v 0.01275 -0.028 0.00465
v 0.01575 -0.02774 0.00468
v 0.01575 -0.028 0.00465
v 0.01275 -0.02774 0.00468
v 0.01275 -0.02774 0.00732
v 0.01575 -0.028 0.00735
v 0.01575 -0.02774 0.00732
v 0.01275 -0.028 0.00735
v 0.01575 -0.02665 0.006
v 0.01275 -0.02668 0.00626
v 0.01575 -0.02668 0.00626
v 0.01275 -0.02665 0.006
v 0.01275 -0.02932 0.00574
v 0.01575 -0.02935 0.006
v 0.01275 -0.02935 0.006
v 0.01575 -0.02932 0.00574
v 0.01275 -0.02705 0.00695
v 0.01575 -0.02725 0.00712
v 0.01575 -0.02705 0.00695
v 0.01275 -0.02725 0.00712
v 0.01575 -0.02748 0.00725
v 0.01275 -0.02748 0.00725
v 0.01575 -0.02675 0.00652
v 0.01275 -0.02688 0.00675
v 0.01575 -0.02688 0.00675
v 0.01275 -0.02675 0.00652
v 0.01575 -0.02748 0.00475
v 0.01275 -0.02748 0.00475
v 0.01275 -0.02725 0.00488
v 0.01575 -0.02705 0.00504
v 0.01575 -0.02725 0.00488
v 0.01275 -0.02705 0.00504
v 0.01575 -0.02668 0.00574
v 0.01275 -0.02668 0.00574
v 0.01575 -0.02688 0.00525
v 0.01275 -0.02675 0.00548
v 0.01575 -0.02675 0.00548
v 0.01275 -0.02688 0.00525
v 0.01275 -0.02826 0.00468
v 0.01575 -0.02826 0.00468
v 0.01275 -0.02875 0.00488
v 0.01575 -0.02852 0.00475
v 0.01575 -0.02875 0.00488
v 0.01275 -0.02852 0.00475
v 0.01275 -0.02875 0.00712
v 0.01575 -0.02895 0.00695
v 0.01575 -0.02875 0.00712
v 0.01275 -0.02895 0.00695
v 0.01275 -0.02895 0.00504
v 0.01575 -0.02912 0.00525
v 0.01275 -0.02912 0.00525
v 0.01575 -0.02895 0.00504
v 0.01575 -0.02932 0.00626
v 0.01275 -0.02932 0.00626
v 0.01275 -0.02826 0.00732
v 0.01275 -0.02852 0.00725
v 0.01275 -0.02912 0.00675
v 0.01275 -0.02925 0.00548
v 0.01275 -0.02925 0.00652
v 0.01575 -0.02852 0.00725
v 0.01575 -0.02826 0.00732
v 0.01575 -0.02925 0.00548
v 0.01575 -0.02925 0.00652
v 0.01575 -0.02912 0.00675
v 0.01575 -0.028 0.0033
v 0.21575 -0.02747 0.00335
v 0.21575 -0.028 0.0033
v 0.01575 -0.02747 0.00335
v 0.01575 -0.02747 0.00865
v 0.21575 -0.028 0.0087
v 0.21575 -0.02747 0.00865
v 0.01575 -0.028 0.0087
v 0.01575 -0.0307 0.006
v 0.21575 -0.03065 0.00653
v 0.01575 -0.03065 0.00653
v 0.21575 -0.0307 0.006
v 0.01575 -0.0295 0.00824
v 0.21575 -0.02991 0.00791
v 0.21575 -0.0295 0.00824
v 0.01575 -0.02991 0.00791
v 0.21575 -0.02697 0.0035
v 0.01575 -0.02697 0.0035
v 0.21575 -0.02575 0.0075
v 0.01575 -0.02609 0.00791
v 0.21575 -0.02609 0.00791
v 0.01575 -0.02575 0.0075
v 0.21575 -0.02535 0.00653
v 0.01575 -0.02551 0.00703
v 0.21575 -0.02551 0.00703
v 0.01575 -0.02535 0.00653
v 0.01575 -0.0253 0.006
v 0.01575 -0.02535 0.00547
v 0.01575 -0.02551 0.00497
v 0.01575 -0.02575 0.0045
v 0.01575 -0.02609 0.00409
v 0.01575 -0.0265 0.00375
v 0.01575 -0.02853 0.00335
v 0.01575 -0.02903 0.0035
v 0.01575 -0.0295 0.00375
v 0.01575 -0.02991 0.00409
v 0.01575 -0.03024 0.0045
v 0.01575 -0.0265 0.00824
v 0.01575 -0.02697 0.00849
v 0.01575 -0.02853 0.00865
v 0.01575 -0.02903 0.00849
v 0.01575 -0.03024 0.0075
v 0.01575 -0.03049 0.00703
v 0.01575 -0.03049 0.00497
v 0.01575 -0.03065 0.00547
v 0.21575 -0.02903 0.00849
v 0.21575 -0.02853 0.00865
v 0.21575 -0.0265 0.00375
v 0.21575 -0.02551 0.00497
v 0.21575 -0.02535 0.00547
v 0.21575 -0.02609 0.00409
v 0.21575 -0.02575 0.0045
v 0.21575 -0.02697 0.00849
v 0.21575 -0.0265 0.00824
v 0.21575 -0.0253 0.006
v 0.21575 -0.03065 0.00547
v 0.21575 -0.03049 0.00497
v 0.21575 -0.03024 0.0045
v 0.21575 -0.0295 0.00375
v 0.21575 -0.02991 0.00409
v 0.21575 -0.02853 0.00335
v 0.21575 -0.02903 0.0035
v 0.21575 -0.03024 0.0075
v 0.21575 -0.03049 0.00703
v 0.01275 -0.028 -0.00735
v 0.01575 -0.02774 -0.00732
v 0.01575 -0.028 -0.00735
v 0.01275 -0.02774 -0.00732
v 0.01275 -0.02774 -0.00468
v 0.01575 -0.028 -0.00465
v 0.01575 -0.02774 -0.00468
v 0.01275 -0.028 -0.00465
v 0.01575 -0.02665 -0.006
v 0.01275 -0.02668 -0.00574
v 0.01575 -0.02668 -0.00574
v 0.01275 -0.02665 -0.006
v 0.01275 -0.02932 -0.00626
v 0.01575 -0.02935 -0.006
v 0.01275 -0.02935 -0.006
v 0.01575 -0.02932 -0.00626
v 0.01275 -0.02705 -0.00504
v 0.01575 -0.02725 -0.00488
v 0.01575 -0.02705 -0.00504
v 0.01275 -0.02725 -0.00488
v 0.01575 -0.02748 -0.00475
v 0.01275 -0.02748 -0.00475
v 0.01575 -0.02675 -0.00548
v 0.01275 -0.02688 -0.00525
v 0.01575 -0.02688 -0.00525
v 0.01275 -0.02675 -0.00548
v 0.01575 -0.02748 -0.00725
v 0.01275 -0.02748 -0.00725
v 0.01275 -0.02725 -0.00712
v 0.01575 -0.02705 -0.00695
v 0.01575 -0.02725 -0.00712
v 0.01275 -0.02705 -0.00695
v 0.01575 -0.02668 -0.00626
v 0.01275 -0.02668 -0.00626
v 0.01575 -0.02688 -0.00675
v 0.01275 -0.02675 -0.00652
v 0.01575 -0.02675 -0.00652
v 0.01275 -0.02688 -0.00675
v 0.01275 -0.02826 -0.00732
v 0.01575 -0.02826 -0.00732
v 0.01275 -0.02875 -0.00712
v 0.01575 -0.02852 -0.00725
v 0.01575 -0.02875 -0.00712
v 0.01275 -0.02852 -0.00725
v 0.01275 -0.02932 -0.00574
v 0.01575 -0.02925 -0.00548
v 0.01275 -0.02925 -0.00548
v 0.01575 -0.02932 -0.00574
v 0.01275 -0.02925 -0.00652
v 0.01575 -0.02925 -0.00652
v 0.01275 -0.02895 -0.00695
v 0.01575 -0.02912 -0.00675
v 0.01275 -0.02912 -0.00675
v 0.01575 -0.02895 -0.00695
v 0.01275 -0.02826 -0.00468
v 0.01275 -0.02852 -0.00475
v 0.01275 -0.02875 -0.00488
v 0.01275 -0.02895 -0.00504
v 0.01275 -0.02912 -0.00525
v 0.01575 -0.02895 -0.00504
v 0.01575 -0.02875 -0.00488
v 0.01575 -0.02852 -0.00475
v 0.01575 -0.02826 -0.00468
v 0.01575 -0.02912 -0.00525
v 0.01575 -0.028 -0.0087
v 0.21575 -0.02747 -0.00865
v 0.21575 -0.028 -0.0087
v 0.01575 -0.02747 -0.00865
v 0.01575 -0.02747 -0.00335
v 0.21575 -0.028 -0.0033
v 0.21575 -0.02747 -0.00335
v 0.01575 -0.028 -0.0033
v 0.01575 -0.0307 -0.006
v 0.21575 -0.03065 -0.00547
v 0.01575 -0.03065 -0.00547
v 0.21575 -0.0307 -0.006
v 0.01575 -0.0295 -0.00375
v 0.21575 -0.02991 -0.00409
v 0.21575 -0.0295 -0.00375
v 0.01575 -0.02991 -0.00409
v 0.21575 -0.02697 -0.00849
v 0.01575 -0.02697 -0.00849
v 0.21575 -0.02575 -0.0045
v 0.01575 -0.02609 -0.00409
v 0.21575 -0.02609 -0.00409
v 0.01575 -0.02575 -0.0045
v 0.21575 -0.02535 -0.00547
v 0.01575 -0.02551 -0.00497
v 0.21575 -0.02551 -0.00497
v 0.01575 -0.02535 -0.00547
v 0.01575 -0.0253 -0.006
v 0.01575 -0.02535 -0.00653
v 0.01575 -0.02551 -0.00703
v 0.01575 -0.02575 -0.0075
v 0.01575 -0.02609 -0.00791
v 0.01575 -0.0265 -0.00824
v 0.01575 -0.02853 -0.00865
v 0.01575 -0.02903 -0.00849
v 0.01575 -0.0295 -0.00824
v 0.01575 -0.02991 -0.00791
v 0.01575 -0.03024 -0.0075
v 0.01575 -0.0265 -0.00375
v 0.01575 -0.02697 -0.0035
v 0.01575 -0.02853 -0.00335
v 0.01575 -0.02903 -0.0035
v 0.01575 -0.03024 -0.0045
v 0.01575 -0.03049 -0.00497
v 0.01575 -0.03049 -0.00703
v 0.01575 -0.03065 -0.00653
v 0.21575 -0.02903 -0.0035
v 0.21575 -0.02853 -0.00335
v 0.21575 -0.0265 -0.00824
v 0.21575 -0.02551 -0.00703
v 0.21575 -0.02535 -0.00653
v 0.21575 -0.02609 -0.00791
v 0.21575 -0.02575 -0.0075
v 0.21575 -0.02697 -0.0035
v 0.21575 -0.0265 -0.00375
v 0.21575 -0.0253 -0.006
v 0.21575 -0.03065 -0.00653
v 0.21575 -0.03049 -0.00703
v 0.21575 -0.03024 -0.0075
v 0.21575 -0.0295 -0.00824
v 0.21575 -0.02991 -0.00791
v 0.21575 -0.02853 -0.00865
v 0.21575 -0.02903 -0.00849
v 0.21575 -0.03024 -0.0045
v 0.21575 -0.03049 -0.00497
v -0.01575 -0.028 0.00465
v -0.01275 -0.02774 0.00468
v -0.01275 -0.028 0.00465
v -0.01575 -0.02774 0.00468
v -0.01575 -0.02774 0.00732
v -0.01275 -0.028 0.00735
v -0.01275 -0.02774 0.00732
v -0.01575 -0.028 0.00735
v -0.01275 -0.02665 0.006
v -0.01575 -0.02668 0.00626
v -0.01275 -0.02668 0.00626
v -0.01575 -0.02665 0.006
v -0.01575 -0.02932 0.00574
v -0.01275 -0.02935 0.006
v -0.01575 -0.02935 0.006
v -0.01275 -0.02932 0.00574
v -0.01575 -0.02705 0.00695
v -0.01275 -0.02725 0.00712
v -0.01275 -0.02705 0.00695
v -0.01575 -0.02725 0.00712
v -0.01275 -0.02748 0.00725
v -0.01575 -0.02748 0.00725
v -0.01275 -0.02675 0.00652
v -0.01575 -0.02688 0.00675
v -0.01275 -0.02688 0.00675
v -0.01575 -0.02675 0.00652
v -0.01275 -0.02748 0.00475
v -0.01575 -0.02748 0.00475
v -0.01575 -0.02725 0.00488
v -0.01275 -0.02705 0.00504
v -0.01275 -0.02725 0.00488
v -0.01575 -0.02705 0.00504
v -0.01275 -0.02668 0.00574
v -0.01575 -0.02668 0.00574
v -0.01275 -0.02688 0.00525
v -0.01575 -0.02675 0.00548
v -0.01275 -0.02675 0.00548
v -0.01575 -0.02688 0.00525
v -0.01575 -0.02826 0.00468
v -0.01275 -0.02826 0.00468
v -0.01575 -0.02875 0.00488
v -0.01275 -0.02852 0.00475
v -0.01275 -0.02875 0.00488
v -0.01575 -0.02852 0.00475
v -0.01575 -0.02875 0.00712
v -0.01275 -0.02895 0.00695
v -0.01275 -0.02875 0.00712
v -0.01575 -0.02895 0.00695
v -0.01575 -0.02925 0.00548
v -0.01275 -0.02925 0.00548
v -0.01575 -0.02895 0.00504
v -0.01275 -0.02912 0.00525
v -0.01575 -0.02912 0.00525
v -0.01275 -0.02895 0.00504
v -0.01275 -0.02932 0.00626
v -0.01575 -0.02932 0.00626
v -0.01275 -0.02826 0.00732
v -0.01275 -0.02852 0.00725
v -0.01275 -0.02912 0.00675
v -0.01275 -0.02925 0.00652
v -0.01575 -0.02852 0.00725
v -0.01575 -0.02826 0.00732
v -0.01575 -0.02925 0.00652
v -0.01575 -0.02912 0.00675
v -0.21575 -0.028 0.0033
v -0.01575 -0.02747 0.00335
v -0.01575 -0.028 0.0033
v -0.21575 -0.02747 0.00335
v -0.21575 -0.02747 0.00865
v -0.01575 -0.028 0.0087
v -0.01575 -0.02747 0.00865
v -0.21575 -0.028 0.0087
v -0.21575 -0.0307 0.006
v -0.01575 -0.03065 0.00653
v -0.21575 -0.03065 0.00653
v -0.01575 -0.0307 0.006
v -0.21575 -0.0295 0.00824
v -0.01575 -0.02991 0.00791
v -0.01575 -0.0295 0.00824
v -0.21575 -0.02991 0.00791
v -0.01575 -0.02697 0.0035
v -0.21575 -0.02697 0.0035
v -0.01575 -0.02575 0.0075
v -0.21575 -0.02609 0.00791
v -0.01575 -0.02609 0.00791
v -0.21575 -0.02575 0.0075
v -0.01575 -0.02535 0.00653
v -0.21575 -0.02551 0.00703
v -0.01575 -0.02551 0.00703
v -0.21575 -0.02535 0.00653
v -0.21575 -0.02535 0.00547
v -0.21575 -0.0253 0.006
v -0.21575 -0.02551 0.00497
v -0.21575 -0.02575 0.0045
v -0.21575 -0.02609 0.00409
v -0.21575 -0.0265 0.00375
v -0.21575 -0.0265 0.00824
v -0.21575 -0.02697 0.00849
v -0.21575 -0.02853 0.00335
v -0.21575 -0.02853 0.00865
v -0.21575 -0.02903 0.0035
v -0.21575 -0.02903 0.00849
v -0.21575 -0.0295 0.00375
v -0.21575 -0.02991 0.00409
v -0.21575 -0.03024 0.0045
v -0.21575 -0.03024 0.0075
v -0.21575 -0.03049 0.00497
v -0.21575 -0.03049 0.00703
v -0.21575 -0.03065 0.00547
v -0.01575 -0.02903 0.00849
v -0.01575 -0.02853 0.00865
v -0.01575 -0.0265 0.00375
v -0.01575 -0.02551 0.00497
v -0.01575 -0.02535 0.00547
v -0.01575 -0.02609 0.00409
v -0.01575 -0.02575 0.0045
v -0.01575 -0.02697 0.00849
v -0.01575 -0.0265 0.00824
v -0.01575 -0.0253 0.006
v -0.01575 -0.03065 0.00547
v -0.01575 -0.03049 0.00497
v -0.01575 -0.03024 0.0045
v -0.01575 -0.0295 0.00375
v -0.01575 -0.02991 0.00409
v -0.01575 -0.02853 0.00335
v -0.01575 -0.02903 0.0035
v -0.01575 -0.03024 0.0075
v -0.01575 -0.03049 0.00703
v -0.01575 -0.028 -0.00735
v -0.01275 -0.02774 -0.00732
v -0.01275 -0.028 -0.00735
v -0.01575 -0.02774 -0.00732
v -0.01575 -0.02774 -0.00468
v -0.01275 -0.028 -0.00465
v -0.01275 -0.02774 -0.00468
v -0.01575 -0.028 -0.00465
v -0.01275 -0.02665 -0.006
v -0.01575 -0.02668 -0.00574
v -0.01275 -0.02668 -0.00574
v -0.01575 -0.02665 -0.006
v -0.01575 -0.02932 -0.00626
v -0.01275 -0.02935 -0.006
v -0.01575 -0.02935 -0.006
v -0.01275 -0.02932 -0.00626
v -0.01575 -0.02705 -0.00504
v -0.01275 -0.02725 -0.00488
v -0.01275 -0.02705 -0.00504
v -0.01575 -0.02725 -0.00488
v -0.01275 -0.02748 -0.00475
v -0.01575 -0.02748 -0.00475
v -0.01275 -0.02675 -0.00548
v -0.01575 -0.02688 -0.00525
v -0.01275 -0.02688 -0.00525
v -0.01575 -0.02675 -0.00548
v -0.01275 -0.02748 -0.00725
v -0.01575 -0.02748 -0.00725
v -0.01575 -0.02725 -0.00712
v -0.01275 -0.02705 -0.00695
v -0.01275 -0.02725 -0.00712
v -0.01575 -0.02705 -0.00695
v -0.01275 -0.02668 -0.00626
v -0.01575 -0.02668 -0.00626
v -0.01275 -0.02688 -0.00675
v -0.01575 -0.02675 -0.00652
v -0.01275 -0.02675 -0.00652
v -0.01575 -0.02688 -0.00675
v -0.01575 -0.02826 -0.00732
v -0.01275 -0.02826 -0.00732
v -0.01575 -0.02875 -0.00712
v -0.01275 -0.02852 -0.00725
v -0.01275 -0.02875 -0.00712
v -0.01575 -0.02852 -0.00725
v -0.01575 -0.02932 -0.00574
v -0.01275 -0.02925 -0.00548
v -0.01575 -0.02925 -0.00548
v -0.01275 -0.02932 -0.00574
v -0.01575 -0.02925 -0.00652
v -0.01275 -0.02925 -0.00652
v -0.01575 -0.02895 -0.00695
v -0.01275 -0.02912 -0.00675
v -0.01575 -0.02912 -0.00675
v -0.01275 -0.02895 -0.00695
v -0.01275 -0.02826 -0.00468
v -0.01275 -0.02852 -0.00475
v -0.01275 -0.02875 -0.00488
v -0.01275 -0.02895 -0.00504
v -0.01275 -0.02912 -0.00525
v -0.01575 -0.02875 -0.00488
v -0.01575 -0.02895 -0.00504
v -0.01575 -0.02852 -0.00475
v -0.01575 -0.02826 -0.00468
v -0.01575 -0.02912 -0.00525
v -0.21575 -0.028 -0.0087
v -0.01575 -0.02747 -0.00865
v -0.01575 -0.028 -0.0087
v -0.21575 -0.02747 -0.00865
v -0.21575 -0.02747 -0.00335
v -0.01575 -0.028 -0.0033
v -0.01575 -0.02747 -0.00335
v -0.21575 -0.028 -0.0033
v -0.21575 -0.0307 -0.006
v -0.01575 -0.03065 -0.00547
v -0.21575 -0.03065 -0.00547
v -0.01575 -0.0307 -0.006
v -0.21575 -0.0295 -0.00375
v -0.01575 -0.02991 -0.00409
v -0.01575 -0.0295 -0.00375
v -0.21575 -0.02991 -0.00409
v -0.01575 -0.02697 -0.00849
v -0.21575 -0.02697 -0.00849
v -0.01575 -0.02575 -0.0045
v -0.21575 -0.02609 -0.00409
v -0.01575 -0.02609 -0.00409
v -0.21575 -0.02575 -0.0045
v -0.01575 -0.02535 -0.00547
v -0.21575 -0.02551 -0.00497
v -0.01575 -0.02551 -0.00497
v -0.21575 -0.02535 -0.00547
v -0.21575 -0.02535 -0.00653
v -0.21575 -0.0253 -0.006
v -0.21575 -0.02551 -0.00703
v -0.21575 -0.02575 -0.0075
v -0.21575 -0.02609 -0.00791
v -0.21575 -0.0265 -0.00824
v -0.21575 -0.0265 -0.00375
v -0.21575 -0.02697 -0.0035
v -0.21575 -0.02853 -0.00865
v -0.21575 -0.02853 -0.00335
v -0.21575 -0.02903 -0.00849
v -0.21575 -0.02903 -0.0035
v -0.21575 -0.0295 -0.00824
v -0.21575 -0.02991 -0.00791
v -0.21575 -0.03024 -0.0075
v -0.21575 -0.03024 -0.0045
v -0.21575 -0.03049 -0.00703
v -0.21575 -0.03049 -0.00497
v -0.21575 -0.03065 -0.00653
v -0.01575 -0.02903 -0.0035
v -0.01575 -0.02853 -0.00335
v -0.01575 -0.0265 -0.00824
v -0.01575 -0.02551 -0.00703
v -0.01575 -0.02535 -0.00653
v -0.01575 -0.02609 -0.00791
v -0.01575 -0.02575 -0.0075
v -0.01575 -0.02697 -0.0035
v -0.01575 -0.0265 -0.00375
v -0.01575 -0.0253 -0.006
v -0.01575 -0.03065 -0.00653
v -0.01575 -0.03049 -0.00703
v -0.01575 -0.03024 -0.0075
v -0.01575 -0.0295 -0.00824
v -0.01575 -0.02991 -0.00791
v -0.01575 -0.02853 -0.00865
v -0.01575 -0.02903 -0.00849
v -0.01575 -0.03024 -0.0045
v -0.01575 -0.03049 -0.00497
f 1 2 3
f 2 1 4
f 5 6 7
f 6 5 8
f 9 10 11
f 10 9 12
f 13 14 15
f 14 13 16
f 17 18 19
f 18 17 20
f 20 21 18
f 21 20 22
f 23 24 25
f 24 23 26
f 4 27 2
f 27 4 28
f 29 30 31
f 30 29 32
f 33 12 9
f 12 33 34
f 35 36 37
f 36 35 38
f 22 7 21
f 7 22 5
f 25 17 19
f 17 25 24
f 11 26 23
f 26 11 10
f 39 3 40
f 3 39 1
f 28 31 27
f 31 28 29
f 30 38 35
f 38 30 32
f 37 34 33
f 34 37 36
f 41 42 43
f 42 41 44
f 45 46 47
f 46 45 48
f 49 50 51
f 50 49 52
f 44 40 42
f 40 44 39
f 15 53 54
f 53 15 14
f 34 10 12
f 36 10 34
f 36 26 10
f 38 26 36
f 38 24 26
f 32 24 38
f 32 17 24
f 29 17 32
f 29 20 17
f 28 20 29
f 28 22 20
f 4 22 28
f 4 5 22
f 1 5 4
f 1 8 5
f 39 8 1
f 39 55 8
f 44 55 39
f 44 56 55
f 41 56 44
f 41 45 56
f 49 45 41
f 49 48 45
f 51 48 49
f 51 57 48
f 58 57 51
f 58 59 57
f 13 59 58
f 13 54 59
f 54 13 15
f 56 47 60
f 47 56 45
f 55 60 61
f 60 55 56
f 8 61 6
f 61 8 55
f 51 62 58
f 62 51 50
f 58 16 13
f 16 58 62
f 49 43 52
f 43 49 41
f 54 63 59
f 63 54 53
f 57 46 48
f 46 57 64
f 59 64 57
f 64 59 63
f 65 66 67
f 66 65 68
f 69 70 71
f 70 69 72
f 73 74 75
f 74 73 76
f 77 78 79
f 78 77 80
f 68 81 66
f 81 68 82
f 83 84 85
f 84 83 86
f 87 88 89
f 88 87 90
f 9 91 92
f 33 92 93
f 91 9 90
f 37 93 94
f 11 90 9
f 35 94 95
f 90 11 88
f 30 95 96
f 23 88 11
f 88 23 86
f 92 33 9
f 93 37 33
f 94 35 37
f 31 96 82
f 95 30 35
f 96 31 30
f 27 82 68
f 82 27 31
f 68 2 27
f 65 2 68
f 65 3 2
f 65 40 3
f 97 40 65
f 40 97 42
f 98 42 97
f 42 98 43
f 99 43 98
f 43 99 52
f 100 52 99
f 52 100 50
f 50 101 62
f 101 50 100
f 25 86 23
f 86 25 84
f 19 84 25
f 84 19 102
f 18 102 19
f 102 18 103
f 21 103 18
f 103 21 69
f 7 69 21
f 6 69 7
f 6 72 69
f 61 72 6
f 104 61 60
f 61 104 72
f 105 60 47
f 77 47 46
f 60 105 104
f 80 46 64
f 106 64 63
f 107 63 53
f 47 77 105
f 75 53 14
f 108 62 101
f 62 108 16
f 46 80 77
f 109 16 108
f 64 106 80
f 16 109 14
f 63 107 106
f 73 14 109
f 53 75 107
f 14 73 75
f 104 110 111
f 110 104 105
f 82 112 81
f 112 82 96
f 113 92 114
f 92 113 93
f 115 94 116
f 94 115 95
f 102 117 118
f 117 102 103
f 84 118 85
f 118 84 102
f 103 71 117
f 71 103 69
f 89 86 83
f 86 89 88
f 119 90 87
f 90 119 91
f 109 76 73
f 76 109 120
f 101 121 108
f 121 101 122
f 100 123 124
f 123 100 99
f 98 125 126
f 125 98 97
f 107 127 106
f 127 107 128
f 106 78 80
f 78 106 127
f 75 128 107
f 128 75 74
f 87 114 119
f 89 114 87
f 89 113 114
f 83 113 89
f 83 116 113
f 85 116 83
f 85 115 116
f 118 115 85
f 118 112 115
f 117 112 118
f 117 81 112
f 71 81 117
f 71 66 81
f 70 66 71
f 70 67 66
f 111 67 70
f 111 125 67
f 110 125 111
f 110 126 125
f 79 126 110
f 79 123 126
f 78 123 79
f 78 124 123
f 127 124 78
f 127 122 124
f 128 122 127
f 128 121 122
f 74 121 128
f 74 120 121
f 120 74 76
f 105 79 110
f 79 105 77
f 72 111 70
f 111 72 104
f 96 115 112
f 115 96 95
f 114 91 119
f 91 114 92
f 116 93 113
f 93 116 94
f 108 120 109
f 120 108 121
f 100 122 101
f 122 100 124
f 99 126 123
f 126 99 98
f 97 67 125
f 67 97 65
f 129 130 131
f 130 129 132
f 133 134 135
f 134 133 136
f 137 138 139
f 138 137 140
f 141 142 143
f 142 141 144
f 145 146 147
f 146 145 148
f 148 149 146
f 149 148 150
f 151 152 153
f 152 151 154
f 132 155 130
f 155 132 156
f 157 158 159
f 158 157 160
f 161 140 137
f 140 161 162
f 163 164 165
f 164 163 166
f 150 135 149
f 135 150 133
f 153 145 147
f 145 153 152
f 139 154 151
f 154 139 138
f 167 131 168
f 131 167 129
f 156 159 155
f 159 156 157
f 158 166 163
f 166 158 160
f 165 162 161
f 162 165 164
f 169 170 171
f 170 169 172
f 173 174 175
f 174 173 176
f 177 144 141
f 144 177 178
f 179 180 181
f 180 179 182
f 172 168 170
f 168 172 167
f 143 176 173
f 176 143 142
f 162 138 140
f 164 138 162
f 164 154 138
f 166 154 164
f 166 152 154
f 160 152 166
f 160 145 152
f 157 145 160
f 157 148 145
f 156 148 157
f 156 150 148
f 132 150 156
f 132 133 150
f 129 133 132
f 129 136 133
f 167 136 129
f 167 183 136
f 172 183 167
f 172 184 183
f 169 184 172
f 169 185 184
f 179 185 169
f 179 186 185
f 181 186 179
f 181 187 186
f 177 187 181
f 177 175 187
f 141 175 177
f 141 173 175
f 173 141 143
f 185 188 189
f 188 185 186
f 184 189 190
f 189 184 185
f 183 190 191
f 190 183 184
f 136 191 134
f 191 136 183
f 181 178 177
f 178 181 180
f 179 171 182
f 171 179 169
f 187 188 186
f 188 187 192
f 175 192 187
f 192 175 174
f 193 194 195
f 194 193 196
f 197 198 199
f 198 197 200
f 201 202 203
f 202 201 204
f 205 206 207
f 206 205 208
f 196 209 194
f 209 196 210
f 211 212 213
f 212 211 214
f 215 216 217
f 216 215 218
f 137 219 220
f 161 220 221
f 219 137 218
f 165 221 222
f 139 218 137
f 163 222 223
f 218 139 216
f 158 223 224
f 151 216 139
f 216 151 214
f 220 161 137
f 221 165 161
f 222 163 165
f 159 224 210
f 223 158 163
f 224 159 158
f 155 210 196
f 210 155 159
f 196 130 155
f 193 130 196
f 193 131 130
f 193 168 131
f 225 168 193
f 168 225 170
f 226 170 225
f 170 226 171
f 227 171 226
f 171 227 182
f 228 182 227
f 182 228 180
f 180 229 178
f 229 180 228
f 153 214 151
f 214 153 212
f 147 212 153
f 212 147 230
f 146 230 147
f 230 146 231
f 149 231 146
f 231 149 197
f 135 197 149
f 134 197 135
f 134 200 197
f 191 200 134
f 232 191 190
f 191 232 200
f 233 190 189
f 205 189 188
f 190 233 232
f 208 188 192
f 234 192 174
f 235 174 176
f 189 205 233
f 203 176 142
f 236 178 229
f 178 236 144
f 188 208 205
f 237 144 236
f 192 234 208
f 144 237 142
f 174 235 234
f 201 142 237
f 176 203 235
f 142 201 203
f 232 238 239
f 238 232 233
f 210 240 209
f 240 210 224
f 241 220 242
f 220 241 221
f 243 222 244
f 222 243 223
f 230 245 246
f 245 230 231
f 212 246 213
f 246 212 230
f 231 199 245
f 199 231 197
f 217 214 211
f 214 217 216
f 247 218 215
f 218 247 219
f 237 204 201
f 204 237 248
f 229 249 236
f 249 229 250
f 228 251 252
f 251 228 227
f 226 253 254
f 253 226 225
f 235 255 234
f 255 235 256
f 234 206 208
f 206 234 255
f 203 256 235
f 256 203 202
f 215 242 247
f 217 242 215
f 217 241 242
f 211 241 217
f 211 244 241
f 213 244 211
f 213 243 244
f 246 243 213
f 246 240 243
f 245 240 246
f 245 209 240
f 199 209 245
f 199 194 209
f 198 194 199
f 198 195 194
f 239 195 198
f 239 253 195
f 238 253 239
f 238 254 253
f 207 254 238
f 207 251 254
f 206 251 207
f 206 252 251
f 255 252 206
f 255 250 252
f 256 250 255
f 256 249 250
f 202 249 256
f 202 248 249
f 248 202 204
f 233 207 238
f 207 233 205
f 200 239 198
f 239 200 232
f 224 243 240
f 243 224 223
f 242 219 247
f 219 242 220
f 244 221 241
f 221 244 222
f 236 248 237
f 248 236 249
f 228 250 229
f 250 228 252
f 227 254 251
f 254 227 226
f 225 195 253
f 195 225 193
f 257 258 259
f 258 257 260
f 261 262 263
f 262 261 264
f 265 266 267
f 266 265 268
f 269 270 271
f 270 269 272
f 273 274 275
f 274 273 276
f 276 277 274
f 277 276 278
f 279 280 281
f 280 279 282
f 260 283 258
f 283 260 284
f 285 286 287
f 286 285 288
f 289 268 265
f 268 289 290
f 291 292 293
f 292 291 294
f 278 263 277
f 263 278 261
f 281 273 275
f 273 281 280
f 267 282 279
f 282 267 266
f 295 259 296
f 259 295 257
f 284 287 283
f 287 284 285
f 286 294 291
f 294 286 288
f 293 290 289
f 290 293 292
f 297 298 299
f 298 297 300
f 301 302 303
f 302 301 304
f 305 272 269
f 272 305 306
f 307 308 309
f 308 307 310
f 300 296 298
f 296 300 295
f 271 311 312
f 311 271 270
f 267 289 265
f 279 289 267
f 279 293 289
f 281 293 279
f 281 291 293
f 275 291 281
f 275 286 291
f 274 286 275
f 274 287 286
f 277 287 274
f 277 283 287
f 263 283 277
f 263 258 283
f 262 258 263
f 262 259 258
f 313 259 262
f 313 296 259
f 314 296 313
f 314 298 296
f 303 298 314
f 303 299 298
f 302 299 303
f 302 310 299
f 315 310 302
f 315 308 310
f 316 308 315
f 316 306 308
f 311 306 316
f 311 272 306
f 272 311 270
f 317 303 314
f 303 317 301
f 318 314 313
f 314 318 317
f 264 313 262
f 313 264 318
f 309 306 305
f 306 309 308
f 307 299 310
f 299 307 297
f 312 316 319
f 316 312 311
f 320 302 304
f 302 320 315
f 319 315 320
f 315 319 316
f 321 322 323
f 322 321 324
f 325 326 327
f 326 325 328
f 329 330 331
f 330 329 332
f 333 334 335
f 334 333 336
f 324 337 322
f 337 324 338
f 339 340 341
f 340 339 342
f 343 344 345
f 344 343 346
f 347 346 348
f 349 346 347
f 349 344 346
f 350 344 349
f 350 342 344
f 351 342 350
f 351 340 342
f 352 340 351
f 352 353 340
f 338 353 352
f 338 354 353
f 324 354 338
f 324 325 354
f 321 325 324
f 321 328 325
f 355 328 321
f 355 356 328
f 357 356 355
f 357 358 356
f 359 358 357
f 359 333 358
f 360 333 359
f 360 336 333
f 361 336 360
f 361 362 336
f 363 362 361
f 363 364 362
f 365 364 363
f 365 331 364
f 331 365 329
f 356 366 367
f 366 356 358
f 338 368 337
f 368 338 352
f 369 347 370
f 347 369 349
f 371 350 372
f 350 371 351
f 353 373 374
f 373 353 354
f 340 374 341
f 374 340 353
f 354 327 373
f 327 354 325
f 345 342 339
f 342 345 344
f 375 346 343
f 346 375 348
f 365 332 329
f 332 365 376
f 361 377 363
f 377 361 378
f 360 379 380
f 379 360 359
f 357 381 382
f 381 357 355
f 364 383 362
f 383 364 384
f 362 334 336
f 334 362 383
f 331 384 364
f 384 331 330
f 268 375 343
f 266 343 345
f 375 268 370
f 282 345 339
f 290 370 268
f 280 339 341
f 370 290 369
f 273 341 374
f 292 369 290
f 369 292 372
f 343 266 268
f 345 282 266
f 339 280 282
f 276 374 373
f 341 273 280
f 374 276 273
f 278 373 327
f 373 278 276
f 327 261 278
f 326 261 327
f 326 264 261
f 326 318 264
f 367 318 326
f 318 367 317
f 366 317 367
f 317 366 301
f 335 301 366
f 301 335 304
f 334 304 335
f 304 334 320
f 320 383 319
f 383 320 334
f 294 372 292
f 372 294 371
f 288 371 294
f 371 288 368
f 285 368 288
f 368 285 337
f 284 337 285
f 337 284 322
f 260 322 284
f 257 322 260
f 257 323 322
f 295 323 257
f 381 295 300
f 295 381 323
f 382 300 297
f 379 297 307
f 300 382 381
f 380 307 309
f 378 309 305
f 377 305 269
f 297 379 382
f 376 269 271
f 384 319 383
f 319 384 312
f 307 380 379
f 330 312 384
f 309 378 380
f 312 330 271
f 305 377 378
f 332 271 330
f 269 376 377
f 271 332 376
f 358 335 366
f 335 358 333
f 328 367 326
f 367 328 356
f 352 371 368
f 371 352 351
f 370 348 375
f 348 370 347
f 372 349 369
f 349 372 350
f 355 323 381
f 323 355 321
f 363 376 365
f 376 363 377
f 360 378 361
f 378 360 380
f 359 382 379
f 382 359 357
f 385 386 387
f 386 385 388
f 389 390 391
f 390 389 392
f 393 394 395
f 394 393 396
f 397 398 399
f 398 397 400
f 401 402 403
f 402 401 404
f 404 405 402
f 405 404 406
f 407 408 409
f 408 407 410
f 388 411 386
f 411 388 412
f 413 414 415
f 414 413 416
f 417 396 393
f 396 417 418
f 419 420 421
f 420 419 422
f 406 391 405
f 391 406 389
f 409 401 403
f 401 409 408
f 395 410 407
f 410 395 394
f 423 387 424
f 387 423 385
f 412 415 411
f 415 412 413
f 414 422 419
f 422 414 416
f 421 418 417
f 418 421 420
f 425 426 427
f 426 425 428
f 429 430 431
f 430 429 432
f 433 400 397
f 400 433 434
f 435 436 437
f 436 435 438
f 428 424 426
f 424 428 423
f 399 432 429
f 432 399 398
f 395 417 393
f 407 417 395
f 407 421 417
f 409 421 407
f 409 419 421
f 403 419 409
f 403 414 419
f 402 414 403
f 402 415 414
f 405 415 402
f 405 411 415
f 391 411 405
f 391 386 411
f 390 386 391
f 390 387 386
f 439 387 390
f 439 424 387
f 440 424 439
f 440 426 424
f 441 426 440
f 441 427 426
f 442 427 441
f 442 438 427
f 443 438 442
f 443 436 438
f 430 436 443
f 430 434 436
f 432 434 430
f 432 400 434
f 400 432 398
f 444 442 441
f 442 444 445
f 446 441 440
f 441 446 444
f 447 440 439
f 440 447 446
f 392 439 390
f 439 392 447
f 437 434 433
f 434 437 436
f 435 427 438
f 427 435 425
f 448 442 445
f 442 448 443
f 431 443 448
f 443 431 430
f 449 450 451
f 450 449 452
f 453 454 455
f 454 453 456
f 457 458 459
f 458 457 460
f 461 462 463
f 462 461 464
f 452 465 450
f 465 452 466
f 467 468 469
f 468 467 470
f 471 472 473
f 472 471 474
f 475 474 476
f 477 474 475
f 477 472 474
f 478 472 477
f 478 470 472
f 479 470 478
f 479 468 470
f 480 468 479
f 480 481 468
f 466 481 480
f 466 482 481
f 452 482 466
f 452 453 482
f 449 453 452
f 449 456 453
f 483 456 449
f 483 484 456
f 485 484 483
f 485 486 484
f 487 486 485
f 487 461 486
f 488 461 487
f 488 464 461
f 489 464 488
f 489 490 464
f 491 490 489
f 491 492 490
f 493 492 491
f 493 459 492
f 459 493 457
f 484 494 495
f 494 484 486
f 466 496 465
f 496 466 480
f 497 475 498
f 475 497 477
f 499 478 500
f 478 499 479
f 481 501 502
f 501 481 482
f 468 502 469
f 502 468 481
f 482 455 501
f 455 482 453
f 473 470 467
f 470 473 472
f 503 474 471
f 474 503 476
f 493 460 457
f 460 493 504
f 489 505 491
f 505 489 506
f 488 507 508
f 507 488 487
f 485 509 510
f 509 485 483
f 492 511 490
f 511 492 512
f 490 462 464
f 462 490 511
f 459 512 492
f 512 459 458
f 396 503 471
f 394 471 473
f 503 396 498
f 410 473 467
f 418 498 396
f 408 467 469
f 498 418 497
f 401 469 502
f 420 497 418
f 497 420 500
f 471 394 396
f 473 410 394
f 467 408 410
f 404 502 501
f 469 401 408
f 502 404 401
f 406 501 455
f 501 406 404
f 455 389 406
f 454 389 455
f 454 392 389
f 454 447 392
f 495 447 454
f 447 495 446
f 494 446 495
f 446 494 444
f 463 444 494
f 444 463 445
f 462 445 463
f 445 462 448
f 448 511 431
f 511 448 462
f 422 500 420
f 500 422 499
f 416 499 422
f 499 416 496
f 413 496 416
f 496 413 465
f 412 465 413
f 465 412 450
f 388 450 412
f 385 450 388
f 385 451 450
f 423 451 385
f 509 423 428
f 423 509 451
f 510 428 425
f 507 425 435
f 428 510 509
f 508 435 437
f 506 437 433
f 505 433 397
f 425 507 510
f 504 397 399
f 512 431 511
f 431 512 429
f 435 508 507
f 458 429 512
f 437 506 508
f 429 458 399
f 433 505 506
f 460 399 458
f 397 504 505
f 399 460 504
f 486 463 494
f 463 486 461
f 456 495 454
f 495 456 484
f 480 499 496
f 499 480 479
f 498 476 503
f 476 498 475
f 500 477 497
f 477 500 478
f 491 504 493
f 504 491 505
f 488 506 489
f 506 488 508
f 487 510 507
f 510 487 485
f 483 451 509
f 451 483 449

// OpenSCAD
n = 128;
m = 32;
clearance = 0.0001;
delta = 0.000001;

HoleInR = 0.00125 + clearance;
HoleOutR = 2 * HoleInR;
HoleInW = 0.003;
HoleOutW = 0.2;

x1 = 0.01425;
y1 = -0.028;
z1 = 0.006;
translate([x1, y1, z1]){
    rotate(a = 90, v = [0, 1, 0]) {
        cylinder(h = HoleInW, r1 = HoleInR, r2 = HoleInR, center     = true, $fn = m);
    }
}

translate([x1 + 0.5 * (HoleInW + HoleOutW) - delta, y1 , z1]){
    rotate(a = 90, v = [0, 1, 0]) {
        cylinder(h = HoleOutW, r1 = HoleOutR, r2 = HoleOutR, center = true, $fn = m);   
    }  
}


x2 = 0.01425;
y2 = -0.028;
z2 = -0.006;
translate([x2, y2, z2]){
    rotate(a = 90, v = [0, 1, 0]) {
        cylinder(h = HoleInW, r1 = HoleInR, r2 = HoleInR, center     = true, $fn = m);
    }
}

translate([x2 + 0.5 * (HoleInW + HoleOutW) - delta, y2, z2]){
    rotate(a = 90, v = [0, 1, 0]) {
        cylinder(h = HoleOutW, r1 = HoleOutR, r2 = HoleOutR, center = true, $fn = m);   
    }  
}

x3 = -0.01425;
y3 = -0.028;
z3 = 0.006;
translate([x3, y3, z3]){
    rotate(a = 90, v = [0, 1, 0]) {
        cylinder(h = HoleInW, r1 = HoleInR, r2 = HoleInR, center     = true, $fn = m);
    }
}

translate([x3 - 0.5 * (HoleInW + HoleOutW) + delta, y3, z3]){
    rotate(a = 90, v = [0, 1, 0]) {
        cylinder(h = HoleOutW, r1 = HoleOutR, r2 = HoleOutR, center = true, $fn = m);   
    }  
}

x4 = -0.01425;
y4 = -0.028;
z4 = -0.006;
translate([x4, y4, z4]){
    rotate(a = 90, v = [0, 1, 0]) {
        cylinder(h = HoleInW, r1 = HoleInR, r2 = HoleInR, center     = true, $fn = m);
    }
}

translate([x4 - 0.5 * (HoleInW + HoleOutW) + delta, y4, z4]){
    rotate(a = 90, v = [0, 1, 0]) {
        cylinder(h = HoleOutW, r1 = HoleOutR, r2 = HoleOutR, center = true, $fn = m);   
    }  
}
